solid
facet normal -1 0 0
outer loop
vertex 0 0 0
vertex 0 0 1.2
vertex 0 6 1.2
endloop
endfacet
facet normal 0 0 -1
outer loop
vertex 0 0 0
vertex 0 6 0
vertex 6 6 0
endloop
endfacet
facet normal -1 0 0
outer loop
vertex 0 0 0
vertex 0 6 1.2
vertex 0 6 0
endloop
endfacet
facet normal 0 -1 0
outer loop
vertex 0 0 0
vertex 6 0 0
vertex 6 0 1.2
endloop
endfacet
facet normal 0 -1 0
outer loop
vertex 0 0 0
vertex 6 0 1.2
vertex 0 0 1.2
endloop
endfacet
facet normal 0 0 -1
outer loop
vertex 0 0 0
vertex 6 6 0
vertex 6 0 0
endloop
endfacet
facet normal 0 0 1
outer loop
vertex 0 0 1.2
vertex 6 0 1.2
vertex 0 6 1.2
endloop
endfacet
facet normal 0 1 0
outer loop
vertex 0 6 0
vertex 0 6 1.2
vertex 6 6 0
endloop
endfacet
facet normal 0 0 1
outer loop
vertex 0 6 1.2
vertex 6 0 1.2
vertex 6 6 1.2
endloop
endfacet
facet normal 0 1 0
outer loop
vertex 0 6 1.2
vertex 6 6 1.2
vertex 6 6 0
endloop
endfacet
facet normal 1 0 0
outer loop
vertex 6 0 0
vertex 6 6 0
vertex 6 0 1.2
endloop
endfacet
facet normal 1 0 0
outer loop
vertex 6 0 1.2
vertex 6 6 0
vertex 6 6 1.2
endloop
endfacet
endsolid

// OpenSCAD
/* Warning, this is a very basic generator with a lot of approximation 
input data : [TFBGA, AKA, 6x6x1.2mm, 60, , A, C04-01277A]
generated by com.zoubworld.electronics.cad.model3d.Basic
Date : Sun Feb 15 10:50:49 CET 2026
*/

//body
color("black")
translate([0,0,0])
cube([6.0,6.0,1.2], center=false);
